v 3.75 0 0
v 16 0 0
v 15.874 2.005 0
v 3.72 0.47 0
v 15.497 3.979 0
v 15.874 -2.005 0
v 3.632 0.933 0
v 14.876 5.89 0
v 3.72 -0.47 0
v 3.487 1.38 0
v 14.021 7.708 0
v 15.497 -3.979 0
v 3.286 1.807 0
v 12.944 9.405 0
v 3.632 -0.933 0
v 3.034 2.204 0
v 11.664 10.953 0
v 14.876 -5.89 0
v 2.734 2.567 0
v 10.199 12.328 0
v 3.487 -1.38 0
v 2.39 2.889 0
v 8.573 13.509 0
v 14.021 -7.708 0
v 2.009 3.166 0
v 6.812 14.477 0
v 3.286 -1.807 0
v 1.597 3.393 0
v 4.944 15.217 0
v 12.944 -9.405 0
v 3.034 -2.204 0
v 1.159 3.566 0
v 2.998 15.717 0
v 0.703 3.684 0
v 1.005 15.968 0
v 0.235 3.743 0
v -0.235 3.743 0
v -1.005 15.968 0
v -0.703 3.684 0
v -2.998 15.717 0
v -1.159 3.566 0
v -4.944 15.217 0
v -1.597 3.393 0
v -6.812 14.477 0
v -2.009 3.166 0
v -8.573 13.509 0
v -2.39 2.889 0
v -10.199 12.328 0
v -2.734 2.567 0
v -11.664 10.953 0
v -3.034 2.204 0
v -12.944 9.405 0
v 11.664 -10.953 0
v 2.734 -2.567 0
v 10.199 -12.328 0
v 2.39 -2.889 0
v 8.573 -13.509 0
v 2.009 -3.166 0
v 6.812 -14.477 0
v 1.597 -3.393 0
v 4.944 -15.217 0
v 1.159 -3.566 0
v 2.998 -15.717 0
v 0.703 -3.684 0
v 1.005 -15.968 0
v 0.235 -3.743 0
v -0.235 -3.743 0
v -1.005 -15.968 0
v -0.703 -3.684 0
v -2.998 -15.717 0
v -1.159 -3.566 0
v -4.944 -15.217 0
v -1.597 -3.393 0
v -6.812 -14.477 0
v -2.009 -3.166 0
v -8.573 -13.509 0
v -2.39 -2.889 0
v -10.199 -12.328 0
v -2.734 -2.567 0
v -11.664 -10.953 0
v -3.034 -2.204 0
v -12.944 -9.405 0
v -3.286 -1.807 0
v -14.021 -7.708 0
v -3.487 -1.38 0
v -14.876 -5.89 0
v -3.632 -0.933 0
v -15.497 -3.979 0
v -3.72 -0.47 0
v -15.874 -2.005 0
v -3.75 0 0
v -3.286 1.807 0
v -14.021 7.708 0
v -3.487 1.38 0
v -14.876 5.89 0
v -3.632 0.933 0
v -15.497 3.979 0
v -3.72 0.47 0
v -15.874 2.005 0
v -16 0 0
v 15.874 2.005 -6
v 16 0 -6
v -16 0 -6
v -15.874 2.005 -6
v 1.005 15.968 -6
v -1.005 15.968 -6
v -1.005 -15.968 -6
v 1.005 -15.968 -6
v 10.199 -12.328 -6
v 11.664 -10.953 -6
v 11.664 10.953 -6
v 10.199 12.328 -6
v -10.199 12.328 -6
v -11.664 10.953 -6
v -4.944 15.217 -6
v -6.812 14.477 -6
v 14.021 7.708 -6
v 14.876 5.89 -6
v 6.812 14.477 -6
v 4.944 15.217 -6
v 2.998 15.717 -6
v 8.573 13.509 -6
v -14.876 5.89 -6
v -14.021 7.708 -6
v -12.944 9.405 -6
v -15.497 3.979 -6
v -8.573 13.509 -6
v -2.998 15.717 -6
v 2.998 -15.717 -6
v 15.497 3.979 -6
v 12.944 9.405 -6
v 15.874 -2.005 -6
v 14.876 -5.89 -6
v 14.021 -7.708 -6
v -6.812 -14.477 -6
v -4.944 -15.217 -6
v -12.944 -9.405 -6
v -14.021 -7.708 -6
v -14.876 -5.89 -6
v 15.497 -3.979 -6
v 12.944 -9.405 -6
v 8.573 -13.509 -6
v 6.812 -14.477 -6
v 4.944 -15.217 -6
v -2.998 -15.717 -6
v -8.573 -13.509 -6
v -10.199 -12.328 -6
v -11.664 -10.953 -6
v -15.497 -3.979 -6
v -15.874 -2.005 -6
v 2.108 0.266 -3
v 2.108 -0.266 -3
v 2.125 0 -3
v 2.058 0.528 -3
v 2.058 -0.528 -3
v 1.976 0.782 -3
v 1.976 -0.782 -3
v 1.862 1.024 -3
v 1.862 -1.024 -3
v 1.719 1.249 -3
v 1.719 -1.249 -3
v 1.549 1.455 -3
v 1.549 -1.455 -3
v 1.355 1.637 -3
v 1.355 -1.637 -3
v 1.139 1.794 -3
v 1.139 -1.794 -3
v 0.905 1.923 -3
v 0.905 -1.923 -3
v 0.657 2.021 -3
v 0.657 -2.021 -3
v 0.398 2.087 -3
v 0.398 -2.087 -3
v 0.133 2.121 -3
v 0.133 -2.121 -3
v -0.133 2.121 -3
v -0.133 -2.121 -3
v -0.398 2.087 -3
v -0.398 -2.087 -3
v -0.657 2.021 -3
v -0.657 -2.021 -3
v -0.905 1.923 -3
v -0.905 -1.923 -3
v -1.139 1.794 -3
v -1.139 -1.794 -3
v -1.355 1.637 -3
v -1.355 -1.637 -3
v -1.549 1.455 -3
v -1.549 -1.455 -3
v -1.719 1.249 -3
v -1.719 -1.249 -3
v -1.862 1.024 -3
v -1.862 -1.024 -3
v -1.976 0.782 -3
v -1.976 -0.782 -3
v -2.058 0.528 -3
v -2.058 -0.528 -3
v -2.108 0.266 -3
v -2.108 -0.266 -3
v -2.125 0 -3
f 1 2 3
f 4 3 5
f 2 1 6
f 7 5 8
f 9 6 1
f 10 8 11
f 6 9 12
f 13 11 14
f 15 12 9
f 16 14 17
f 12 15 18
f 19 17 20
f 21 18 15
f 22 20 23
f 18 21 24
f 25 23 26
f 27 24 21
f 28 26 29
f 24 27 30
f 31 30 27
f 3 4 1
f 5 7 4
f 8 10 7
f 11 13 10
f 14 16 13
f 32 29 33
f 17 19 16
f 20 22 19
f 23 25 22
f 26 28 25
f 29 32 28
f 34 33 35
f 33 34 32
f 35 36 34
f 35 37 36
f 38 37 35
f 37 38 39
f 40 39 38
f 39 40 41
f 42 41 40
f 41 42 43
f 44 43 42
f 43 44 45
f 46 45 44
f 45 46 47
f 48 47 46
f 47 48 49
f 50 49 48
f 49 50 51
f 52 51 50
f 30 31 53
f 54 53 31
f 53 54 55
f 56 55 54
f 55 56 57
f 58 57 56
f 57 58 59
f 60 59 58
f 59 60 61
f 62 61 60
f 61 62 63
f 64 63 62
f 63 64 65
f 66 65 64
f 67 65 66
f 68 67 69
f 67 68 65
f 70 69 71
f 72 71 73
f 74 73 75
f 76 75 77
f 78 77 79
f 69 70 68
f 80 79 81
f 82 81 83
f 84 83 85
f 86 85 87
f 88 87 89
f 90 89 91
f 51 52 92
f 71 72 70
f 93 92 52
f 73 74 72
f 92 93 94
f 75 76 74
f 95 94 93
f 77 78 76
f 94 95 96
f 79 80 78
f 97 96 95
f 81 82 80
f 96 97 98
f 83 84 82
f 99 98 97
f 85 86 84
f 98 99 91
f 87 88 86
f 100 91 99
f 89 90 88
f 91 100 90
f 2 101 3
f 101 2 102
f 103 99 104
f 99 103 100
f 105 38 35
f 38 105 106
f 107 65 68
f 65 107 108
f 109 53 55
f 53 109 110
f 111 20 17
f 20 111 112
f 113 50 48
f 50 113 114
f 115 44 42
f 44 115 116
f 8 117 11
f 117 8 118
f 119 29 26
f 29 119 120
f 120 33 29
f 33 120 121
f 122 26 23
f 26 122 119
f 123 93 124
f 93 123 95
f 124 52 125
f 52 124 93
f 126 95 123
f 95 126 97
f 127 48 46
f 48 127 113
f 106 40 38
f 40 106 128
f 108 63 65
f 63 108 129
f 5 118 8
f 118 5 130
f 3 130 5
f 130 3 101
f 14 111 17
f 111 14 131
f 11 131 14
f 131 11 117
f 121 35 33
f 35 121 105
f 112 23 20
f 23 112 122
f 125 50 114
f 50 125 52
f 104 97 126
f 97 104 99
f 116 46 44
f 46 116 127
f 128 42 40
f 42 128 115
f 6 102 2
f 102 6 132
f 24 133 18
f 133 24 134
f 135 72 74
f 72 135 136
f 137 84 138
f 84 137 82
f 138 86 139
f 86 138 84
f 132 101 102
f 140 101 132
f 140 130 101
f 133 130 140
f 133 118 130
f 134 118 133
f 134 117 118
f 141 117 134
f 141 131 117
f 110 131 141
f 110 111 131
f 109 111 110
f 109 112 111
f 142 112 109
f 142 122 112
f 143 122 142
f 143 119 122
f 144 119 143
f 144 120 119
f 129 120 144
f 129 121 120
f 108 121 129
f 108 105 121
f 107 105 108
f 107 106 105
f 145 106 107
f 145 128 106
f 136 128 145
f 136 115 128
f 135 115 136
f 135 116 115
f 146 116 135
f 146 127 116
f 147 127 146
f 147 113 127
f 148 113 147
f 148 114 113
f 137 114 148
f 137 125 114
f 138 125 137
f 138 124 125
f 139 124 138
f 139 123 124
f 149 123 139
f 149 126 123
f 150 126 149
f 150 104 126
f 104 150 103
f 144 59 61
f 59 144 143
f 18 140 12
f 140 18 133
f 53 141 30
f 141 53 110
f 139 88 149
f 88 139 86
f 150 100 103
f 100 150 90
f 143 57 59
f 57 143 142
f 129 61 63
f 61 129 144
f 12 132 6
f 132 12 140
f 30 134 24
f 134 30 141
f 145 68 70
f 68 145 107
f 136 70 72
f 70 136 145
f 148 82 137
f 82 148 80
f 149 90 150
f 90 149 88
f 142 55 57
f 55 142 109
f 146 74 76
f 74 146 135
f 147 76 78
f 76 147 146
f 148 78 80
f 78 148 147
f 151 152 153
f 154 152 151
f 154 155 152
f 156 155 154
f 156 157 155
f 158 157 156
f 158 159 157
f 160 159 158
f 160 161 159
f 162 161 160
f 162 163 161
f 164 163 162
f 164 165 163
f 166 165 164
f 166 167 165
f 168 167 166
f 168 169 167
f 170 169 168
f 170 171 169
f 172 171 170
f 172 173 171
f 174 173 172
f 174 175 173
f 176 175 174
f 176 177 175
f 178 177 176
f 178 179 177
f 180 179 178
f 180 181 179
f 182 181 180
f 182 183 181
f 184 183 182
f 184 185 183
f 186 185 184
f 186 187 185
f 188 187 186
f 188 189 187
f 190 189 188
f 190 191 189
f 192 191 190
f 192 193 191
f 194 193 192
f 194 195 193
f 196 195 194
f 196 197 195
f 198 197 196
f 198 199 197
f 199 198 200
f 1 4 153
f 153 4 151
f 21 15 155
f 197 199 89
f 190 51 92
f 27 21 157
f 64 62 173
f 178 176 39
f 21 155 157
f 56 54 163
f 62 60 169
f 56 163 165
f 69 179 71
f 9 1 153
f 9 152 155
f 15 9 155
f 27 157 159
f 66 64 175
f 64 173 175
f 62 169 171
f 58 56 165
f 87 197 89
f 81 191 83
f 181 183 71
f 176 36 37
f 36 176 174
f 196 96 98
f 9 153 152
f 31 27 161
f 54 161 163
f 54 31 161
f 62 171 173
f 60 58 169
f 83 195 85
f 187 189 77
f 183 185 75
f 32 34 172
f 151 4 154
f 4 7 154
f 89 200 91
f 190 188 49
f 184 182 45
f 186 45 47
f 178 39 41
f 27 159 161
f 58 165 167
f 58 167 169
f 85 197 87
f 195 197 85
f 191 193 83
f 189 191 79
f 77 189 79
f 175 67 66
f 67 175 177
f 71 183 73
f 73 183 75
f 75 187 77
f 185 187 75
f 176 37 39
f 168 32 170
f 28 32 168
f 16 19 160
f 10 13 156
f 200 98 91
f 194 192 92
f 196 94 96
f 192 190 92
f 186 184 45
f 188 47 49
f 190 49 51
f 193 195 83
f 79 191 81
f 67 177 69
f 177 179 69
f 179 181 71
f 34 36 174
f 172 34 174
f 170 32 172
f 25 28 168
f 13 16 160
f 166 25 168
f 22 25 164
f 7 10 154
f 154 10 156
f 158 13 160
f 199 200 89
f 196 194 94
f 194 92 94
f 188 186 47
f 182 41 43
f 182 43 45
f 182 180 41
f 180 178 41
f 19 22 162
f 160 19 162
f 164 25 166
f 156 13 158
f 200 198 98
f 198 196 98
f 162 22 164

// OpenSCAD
$fn = 50;


difference() {
	union() {
		translate(v = [0, 0, -3.0000000000]) {
			cylinder(h = 3, r = 7.0000000000);
		}
		translate(v = [0, 0, -6.0000000000]) {
			cylinder(h = 6, r = 16.0000000000);
		}
	}
	union() {
		translate(v = [0, 0, 0]) {
			rotate(a = [0, 0, 0]) {
				difference() {
					union() {
						#translate(v = [0, 0, -3.0000000000]) {
							cylinder(h = 3, r = 2.0000000000);
						}
						#translate(v = [0, 0, -3]) {
							cylinder(h = 3, r = 7.0000000000, r1 = 2.1250000000, r2 = 3.7500000000);
						}
						#translate(v = [0, 0, -3.0000000000]) {
							cylinder(h = 3, r = 2.1250000000);
						}
						#translate(v = [0, 0, -3.0000000000]) {
							cylinder(h = 3, r = 2.0000000000);
						}
					}
					union();
				}
			}
		}
	}
}
